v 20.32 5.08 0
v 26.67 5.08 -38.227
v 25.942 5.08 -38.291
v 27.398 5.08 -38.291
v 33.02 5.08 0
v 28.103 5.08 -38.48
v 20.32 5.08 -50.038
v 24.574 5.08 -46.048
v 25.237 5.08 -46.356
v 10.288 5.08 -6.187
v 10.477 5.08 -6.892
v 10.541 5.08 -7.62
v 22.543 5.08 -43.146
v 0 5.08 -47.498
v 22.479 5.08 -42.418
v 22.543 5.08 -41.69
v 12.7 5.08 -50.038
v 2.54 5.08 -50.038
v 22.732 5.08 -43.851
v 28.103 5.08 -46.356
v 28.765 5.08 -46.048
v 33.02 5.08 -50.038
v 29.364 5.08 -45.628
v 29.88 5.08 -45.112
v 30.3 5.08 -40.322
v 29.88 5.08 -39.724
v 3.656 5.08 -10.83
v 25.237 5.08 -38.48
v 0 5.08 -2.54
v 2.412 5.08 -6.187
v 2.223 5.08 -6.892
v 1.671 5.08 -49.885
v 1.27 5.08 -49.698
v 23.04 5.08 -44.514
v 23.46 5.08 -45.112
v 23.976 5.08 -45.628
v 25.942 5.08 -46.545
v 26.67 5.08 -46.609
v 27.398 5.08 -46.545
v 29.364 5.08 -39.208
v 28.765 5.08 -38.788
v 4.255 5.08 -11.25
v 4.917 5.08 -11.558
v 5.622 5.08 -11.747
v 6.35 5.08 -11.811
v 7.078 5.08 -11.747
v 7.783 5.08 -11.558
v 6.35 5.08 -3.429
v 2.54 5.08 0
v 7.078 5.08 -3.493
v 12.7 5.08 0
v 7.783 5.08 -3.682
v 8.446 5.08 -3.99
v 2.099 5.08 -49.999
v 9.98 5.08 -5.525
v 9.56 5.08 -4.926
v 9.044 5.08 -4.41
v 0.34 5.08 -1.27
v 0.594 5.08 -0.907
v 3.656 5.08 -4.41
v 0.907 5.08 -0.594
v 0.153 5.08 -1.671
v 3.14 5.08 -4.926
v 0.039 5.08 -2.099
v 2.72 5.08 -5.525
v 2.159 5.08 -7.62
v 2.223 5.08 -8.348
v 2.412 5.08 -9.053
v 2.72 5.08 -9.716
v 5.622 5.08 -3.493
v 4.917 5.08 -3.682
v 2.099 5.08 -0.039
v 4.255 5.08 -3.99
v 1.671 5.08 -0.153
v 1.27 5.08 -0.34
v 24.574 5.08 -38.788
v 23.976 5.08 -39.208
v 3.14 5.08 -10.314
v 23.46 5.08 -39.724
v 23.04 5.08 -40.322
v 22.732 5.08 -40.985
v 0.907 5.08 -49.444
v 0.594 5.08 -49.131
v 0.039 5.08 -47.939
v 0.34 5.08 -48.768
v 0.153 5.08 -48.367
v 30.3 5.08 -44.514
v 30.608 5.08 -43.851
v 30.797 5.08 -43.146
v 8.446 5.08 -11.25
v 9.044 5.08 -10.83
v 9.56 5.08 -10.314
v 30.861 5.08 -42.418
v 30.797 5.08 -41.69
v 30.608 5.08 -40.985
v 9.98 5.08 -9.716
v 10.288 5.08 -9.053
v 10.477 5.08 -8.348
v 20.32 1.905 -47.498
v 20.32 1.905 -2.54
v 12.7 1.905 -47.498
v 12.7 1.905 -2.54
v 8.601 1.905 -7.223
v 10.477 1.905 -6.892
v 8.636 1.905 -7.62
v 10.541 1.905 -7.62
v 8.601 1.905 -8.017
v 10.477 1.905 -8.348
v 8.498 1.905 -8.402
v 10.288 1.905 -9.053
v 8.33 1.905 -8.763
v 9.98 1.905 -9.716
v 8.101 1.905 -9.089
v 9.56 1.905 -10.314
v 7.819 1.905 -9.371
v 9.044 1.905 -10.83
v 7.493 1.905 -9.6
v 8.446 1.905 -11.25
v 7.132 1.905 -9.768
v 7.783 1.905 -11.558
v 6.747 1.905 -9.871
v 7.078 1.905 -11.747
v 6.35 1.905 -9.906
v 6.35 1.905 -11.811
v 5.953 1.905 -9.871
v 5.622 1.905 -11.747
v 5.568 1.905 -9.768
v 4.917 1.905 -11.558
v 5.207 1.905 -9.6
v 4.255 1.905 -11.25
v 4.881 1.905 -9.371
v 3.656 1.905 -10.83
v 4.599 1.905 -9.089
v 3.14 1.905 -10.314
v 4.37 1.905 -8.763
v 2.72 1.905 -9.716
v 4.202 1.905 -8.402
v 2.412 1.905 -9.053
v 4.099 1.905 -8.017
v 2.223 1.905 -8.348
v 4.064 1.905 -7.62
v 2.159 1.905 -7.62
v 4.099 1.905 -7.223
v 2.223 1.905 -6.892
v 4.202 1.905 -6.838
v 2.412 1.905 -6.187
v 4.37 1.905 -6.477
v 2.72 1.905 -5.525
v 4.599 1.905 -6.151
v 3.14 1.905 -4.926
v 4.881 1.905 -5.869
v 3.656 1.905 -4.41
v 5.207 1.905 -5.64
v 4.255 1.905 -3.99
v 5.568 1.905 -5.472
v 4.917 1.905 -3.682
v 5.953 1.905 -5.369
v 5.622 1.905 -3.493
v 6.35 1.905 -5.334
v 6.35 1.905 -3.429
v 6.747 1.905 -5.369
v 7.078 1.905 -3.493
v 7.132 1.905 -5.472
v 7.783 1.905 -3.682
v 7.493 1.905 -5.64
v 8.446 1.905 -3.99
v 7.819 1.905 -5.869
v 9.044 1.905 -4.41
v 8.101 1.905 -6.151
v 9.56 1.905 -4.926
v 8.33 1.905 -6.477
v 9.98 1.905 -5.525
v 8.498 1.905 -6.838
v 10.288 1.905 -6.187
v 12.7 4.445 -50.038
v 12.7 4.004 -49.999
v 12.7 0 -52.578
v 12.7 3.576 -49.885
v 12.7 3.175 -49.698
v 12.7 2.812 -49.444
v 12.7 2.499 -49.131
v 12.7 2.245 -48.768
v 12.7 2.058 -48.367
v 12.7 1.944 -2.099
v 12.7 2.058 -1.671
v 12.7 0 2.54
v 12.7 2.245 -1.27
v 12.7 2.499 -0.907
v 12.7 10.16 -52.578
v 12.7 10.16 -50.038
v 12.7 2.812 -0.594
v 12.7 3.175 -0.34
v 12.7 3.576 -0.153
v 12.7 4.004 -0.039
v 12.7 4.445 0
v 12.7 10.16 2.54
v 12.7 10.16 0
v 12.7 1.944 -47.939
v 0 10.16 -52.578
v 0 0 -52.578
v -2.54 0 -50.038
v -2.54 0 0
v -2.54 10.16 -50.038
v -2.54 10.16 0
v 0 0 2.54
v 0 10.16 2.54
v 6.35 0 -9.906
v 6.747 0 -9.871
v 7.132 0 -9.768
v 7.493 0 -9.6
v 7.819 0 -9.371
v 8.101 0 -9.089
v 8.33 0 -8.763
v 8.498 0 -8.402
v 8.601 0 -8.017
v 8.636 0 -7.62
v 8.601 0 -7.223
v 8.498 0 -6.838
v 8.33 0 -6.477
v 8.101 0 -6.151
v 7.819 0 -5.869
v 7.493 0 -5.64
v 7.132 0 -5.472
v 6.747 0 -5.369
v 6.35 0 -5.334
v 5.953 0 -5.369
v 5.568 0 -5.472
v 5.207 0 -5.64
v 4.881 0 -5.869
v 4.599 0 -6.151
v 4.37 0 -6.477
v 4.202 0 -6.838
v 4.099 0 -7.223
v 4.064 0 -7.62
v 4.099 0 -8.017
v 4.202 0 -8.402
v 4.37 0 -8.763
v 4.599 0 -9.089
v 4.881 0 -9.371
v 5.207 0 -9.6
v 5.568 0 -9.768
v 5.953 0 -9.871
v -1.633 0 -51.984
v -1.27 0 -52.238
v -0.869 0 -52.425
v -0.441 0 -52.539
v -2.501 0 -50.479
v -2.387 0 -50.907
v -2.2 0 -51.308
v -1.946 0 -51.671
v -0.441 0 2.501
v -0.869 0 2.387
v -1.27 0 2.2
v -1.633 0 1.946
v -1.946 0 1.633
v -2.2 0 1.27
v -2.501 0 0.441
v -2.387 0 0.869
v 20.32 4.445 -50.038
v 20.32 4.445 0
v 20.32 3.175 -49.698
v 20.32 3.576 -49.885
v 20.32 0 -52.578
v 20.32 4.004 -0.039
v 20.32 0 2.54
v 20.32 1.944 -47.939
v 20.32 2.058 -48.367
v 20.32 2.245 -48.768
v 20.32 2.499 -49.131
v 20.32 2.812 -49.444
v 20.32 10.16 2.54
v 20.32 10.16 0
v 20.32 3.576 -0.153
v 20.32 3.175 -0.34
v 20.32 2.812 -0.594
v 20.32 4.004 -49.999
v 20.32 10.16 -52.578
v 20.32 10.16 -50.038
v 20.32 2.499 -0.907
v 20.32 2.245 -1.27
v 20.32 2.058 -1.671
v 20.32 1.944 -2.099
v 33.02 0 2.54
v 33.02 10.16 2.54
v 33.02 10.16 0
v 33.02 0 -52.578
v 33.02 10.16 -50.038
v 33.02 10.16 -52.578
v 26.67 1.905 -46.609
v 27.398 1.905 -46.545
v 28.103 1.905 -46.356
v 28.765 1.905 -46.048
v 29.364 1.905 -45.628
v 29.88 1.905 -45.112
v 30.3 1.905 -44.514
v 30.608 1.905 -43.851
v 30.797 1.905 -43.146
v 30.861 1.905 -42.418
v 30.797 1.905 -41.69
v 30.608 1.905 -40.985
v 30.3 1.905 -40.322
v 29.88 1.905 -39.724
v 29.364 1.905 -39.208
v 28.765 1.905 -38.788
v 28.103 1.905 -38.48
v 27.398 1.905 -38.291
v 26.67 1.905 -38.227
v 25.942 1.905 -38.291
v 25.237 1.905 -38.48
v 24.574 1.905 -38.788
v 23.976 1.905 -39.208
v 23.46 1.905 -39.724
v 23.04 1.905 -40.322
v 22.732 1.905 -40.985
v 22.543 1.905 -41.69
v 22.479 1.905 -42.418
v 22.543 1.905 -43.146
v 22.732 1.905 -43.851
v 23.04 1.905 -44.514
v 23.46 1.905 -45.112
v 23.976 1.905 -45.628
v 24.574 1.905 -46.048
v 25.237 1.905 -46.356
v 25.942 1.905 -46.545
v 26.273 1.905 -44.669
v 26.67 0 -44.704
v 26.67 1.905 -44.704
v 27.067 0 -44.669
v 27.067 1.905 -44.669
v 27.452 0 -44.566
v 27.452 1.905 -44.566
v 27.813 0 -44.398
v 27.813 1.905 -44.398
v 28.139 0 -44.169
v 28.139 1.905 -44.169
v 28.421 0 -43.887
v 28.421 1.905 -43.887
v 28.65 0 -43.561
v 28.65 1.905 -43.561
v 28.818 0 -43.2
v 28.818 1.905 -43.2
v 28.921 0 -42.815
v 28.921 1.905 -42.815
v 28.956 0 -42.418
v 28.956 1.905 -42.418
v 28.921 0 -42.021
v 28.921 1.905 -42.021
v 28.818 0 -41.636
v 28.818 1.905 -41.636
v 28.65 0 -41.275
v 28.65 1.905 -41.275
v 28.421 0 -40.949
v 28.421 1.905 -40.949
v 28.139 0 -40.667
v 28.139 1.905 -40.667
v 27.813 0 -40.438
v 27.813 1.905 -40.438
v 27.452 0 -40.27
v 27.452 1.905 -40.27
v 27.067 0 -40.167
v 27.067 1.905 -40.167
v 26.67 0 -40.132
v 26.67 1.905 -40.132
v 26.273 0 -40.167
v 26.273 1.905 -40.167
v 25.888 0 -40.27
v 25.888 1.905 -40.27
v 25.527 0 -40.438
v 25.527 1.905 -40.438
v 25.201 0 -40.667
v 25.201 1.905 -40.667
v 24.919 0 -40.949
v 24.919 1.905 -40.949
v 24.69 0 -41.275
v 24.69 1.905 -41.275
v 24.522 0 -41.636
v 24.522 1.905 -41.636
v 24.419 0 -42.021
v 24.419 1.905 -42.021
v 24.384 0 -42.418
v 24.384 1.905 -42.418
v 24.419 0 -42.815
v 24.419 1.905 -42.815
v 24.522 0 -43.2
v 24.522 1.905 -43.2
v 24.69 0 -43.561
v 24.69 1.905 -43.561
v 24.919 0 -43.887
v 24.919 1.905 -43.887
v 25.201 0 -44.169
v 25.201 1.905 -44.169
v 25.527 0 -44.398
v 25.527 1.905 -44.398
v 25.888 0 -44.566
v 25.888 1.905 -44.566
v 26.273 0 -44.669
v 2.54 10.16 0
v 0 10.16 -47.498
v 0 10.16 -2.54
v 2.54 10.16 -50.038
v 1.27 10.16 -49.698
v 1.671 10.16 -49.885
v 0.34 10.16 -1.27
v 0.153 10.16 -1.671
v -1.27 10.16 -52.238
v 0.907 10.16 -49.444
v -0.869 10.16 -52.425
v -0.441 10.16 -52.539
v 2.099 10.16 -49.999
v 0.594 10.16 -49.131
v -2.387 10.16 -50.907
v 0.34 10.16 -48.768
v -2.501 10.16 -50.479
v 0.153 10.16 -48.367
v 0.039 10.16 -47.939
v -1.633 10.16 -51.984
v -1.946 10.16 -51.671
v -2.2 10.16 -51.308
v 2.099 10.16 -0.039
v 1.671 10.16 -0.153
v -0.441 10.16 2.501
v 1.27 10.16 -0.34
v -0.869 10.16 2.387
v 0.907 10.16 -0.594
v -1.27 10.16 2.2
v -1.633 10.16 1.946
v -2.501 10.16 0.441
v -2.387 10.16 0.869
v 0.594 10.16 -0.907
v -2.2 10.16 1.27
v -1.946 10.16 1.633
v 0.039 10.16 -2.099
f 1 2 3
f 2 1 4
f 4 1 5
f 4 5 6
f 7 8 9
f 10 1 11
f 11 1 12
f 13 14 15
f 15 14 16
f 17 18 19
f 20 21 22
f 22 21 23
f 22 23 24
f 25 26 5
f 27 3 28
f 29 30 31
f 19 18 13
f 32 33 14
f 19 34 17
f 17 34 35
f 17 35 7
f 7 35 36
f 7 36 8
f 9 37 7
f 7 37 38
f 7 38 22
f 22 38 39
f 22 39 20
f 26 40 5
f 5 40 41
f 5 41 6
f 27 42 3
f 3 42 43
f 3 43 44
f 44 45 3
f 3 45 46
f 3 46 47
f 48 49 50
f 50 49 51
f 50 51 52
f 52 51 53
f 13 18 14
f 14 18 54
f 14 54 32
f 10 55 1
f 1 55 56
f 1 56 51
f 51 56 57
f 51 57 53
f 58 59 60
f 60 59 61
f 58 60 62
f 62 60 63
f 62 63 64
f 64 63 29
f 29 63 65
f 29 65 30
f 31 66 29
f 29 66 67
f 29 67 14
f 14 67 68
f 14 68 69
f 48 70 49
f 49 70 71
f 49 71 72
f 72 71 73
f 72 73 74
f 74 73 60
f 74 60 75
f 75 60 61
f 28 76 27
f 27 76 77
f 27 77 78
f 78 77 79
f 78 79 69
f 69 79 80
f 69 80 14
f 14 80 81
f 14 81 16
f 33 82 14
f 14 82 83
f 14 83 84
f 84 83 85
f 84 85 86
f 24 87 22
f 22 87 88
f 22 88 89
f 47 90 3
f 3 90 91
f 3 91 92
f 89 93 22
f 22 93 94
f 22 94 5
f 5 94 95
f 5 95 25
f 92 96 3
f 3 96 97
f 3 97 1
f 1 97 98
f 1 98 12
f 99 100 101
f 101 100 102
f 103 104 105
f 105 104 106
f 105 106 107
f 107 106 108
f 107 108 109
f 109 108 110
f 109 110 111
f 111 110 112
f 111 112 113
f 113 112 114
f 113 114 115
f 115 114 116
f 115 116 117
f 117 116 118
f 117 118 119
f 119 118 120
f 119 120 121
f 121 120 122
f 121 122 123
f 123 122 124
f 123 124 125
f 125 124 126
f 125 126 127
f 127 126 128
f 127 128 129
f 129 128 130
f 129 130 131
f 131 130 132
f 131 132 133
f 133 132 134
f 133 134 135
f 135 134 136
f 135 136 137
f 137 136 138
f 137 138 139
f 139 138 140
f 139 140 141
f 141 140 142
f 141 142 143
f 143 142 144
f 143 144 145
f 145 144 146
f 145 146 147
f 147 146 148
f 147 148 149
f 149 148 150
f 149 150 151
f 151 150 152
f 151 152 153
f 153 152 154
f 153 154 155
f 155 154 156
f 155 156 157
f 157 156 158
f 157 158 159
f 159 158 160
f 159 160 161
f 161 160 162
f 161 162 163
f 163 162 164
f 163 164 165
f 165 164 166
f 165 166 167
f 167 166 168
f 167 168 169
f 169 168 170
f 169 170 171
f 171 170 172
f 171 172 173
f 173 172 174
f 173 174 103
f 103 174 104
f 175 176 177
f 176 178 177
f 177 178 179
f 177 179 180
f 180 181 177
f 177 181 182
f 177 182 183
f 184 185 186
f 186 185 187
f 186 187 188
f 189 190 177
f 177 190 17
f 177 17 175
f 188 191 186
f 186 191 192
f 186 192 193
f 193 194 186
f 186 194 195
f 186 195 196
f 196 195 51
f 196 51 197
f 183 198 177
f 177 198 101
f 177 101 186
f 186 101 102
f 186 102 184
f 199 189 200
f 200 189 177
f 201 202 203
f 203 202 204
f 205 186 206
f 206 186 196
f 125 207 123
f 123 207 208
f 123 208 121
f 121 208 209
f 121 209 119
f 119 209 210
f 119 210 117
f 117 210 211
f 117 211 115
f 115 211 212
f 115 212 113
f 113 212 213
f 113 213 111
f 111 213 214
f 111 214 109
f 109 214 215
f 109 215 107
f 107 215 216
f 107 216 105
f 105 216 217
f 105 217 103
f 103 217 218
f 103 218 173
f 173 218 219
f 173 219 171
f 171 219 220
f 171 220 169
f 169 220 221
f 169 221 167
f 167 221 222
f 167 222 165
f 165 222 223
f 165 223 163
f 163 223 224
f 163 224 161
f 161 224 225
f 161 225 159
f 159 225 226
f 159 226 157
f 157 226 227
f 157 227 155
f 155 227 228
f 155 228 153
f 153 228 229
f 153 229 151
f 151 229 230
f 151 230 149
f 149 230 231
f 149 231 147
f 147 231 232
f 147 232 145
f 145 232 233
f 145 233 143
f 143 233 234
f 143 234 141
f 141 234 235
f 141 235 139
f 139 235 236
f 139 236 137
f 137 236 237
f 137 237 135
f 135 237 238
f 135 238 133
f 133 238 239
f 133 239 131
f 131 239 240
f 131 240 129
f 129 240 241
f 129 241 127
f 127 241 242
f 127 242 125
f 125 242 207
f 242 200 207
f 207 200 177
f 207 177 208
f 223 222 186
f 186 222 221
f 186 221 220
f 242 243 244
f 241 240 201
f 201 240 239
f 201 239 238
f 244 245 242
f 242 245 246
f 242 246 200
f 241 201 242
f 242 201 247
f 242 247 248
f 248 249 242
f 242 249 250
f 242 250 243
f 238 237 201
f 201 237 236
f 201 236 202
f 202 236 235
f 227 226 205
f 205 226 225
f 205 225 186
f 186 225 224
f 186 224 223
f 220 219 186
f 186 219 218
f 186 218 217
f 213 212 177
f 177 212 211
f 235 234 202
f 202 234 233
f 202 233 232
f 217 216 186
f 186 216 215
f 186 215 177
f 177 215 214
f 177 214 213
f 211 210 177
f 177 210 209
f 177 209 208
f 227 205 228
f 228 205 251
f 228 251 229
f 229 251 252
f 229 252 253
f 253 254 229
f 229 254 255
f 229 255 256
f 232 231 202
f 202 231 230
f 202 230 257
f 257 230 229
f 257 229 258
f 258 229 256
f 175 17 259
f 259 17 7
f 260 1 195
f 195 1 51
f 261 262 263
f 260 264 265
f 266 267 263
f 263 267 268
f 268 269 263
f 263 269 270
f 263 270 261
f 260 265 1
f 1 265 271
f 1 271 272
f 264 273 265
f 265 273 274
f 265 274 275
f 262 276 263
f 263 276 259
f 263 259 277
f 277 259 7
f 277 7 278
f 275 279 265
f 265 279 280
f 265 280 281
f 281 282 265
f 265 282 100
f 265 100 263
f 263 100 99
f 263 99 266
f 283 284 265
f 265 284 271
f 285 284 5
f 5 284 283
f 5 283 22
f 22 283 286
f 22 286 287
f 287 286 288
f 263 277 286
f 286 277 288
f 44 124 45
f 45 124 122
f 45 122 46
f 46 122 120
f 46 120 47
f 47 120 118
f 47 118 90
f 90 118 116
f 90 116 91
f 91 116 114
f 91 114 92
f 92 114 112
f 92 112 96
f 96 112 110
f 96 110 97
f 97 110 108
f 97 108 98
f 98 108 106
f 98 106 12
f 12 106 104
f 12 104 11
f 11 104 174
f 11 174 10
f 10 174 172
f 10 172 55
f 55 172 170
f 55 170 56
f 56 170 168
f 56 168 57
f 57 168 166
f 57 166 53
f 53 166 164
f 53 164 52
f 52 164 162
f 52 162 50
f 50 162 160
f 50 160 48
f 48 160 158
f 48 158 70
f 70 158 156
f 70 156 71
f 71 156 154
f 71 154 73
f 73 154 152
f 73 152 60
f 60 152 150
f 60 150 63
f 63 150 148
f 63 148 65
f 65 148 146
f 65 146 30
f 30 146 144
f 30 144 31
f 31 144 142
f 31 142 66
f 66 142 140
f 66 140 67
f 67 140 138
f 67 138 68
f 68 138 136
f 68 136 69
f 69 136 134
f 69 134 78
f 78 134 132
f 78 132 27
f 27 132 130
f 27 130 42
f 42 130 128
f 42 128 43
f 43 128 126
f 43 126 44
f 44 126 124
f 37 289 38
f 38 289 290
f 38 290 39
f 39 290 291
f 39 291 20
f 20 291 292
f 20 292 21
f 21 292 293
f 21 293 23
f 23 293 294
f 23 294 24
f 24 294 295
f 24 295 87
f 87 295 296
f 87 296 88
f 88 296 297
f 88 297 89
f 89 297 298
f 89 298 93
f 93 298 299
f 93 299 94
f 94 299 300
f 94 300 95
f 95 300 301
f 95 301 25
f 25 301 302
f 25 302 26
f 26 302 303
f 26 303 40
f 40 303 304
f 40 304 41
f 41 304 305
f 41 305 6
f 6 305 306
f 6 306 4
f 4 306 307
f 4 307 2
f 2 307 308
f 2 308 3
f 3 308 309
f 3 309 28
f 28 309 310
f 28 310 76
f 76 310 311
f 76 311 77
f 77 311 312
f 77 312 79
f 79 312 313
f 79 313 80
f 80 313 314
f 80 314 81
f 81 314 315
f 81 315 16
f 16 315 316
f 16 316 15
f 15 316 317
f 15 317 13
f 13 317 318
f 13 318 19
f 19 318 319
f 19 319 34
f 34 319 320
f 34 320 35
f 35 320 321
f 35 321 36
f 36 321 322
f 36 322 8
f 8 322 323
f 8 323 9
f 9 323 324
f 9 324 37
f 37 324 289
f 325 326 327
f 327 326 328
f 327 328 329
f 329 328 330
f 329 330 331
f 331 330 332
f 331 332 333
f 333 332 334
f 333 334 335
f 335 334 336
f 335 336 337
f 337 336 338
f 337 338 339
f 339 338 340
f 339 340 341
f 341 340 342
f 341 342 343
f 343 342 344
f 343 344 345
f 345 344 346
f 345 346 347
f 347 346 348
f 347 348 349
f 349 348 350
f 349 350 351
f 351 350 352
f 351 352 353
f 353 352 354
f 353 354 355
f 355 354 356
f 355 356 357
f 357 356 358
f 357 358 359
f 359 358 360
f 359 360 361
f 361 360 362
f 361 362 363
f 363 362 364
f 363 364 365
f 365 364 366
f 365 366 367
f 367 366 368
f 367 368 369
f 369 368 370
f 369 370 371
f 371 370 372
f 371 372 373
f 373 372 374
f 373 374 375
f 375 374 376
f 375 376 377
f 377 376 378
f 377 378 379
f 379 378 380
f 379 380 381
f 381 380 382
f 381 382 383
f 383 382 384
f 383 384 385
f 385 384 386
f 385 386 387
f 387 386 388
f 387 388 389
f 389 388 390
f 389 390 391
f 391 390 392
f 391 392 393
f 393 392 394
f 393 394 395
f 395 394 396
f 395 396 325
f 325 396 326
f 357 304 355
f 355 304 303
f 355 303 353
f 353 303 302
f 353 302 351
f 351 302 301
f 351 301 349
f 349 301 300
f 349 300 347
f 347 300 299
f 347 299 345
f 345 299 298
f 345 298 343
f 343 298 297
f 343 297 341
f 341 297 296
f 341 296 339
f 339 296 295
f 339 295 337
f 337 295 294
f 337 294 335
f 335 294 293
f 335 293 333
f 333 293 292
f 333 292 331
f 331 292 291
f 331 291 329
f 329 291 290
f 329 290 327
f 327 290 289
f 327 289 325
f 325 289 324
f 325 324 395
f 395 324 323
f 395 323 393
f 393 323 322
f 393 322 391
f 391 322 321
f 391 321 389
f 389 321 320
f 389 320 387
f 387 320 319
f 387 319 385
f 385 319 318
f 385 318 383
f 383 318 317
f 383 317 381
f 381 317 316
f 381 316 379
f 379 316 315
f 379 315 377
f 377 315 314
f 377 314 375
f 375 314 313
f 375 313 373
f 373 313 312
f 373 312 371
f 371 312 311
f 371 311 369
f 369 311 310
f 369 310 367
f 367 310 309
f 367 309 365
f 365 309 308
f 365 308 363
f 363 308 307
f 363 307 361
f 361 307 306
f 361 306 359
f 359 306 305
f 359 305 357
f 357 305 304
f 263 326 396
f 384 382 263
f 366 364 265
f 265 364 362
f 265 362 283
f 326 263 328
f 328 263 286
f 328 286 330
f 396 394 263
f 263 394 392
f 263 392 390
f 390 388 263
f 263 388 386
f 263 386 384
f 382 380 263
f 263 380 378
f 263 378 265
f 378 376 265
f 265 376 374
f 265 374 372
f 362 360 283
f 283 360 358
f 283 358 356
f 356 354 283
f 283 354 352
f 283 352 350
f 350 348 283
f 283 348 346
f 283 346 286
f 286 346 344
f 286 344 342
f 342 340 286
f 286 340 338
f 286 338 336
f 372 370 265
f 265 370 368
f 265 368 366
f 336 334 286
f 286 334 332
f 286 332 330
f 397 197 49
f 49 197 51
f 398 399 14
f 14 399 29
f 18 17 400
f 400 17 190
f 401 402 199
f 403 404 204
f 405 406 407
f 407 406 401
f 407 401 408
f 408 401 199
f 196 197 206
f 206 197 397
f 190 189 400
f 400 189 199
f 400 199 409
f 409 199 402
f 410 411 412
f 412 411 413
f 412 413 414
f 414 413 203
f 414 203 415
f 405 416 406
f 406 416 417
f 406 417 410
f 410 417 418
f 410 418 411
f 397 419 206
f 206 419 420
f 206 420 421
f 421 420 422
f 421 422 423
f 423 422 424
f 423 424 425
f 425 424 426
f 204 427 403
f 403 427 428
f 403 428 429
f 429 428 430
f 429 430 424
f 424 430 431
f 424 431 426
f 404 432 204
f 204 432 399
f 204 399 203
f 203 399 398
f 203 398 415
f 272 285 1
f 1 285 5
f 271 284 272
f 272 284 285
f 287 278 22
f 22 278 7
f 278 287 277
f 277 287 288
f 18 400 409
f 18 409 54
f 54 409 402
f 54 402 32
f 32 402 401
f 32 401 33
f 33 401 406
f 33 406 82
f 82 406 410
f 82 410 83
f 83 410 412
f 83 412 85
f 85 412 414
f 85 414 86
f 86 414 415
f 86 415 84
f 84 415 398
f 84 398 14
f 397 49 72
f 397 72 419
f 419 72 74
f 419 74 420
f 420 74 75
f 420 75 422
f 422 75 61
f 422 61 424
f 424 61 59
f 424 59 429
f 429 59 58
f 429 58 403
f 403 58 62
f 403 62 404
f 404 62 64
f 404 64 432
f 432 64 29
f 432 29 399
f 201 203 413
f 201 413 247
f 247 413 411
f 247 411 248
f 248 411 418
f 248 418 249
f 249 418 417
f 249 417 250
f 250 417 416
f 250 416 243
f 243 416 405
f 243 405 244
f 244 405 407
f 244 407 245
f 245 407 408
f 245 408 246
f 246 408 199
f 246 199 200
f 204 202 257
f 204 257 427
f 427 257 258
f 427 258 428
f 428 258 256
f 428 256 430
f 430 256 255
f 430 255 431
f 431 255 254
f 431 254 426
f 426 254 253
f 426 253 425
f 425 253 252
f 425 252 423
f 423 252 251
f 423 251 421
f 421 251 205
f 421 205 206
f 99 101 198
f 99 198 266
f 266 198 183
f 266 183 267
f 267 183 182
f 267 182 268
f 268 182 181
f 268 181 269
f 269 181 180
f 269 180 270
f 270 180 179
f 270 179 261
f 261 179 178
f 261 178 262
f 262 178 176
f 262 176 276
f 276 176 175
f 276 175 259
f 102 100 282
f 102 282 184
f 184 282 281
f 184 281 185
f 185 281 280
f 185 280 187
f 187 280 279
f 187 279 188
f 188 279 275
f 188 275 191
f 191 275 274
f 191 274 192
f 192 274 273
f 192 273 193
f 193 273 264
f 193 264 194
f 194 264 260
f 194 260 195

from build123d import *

# Parameters (mm, degrees)
SKETCH1_W           = 12.7
SKETCH1_H           = 50.038
SKETCH1_R           = 4.191
SKETCH1_R_2         = 2.286
SKETCH1_H_2         = 2.54
BOSS_EXTRUDE1_DEPTH = 1.905
BOSS_EXTRUDE3_START = 1.905
SKETCH1_3_W         = 7.62
SKETCH1_3_H         = 50.038
SKETCH1_3_W_2       = 12.7
SKETCH1_3_R         = 4.191
SKETCH1_3_H_2       = 2.54
BOSS_EXTRUDE3_DEPTH = 3.175
BOSS_EXTRUDE4_START = 5.08
SKETCH1_4_W         = 12.7
SKETCH1_4_H         = 2.54
BOSS_EXTRUDE4_DEPTH = 5.08
FILLET1_R           = 2.54


with BuildPart() as part:
    # Sketch1 → Boss-Extrude1 (new body)
    with BuildSketch(Plane(origin=(0, 0, 0), x_dir=(1, 0, 0), z_dir=(0, 1, 0))):
        with Locations((6.35, 25.019)):
            Rectangle(SKETCH1_W, SKETCH1_H)
        with Locations((6.35, 7.62)):
            Circle(SKETCH1_R, mode=Mode.SUBTRACT)
        with Locations((26.67, 25.019)):
            Rectangle(SKETCH1_W, SKETCH1_H)
        with Locations((26.67, 42.418)):
            Circle(SKETCH1_R, mode=Mode.SUBTRACT)
        with Locations((6.35, 7.62)):
            Circle(SKETCH1_R)
        with Locations((6.35, 7.62)):
            Circle(SKETCH1_R_2, mode=Mode.SUBTRACT)
        with Locations((26.67, 42.418)):
            Circle(SKETCH1_R)
        with Locations((26.67, 42.418)):
            Circle(SKETCH1_R_2, mode=Mode.SUBTRACT)
        Polygon((12.7, 0), (0, 0), (0, 50.038), (12.7, 50.038), (12.7, 52.578), (-2.54, 52.578), (-2.54, -2.54), (12.7, -2.54), align=None)
        with Locations((26.67, 51.308)):
            Rectangle(SKETCH1_W, SKETCH1_H_2)
        with Locations((26.67, -1.27)):
            Rectangle(SKETCH1_W, SKETCH1_H_2)
    extrude(amount=BOSS_EXTRUDE1_DEPTH)

    # Sketch1_3 → Boss-Extrude3 (add)
    with BuildSketch(Plane(origin=(0, 0, 0), x_dir=(1, 0, 0), z_dir=(0, 1, 0)).offset(BOSS_EXTRUDE3_START)):
        with Locations((16.51, 25.019)):
            Rectangle(SKETCH1_3_W, SKETCH1_3_H)
        with Locations((6.35, 25.019)):
            Rectangle(SKETCH1_3_W_2, SKETCH1_3_H)
        with Locations((6.35, 7.62)):
            Circle(SKETCH1_3_R, mode=Mode.SUBTRACT)
        with Locations((26.67, 25.019)):
            Rectangle(SKETCH1_3_W_2, SKETCH1_3_H)
        with Locations((26.67, 42.418)):
            Circle(SKETCH1_3_R, mode=Mode.SUBTRACT)
        Polygon((12.7, 0), (0, 0), (0, 50.038), (12.7, 50.038), (12.7, 52.578), (-2.54, 52.578), (-2.54, -2.54), (12.7, -2.54), align=None)
        with Locations((26.67, -1.27)):
            Rectangle(SKETCH1_3_W_2, SKETCH1_3_H_2)
        with Locations((26.67, 51.308)):
            Rectangle(SKETCH1_3_W_2, SKETCH1_3_H_2)
    extrude(amount=BOSS_EXTRUDE3_DEPTH)

    # Sketch1_4 → Boss-Extrude4 (add)
    with BuildSketch(Plane(origin=(0, 0, 0), x_dir=(1, 0, 0), z_dir=(0, 1, 0)).offset(BOSS_EXTRUDE4_START)):
        Polygon((12.7, 0), (0, 0), (0, 50.038), (12.7, 50.038), (12.7, 52.578), (-2.54, 52.578), (-2.54, -2.54), (12.7, -2.54), align=None)
        with Locations((26.67, -1.27)):
            Rectangle(SKETCH1_4_W, SKETCH1_4_H)
        with Locations((26.67, 51.308)):
            Rectangle(SKETCH1_4_W, SKETCH1_4_H)
    extrude(amount=BOSS_EXTRUDE4_DEPTH)

    # Fillet1
    fillet1_edges = [part.edges().sort_by_distance(p)[0] for p in [
        (0, 7.62, -50.038),
        (0, 7.62, 0),
        (-2.54, 5.08, -52.578),
        (-2.54, 5.08, 2.54),
        (16.51, 1.905, -50.038),
        (16.51, 1.905, 0),
    ]]
    fillet(fillet1_edges, radius=FILLET1_R)


solid = part.part
